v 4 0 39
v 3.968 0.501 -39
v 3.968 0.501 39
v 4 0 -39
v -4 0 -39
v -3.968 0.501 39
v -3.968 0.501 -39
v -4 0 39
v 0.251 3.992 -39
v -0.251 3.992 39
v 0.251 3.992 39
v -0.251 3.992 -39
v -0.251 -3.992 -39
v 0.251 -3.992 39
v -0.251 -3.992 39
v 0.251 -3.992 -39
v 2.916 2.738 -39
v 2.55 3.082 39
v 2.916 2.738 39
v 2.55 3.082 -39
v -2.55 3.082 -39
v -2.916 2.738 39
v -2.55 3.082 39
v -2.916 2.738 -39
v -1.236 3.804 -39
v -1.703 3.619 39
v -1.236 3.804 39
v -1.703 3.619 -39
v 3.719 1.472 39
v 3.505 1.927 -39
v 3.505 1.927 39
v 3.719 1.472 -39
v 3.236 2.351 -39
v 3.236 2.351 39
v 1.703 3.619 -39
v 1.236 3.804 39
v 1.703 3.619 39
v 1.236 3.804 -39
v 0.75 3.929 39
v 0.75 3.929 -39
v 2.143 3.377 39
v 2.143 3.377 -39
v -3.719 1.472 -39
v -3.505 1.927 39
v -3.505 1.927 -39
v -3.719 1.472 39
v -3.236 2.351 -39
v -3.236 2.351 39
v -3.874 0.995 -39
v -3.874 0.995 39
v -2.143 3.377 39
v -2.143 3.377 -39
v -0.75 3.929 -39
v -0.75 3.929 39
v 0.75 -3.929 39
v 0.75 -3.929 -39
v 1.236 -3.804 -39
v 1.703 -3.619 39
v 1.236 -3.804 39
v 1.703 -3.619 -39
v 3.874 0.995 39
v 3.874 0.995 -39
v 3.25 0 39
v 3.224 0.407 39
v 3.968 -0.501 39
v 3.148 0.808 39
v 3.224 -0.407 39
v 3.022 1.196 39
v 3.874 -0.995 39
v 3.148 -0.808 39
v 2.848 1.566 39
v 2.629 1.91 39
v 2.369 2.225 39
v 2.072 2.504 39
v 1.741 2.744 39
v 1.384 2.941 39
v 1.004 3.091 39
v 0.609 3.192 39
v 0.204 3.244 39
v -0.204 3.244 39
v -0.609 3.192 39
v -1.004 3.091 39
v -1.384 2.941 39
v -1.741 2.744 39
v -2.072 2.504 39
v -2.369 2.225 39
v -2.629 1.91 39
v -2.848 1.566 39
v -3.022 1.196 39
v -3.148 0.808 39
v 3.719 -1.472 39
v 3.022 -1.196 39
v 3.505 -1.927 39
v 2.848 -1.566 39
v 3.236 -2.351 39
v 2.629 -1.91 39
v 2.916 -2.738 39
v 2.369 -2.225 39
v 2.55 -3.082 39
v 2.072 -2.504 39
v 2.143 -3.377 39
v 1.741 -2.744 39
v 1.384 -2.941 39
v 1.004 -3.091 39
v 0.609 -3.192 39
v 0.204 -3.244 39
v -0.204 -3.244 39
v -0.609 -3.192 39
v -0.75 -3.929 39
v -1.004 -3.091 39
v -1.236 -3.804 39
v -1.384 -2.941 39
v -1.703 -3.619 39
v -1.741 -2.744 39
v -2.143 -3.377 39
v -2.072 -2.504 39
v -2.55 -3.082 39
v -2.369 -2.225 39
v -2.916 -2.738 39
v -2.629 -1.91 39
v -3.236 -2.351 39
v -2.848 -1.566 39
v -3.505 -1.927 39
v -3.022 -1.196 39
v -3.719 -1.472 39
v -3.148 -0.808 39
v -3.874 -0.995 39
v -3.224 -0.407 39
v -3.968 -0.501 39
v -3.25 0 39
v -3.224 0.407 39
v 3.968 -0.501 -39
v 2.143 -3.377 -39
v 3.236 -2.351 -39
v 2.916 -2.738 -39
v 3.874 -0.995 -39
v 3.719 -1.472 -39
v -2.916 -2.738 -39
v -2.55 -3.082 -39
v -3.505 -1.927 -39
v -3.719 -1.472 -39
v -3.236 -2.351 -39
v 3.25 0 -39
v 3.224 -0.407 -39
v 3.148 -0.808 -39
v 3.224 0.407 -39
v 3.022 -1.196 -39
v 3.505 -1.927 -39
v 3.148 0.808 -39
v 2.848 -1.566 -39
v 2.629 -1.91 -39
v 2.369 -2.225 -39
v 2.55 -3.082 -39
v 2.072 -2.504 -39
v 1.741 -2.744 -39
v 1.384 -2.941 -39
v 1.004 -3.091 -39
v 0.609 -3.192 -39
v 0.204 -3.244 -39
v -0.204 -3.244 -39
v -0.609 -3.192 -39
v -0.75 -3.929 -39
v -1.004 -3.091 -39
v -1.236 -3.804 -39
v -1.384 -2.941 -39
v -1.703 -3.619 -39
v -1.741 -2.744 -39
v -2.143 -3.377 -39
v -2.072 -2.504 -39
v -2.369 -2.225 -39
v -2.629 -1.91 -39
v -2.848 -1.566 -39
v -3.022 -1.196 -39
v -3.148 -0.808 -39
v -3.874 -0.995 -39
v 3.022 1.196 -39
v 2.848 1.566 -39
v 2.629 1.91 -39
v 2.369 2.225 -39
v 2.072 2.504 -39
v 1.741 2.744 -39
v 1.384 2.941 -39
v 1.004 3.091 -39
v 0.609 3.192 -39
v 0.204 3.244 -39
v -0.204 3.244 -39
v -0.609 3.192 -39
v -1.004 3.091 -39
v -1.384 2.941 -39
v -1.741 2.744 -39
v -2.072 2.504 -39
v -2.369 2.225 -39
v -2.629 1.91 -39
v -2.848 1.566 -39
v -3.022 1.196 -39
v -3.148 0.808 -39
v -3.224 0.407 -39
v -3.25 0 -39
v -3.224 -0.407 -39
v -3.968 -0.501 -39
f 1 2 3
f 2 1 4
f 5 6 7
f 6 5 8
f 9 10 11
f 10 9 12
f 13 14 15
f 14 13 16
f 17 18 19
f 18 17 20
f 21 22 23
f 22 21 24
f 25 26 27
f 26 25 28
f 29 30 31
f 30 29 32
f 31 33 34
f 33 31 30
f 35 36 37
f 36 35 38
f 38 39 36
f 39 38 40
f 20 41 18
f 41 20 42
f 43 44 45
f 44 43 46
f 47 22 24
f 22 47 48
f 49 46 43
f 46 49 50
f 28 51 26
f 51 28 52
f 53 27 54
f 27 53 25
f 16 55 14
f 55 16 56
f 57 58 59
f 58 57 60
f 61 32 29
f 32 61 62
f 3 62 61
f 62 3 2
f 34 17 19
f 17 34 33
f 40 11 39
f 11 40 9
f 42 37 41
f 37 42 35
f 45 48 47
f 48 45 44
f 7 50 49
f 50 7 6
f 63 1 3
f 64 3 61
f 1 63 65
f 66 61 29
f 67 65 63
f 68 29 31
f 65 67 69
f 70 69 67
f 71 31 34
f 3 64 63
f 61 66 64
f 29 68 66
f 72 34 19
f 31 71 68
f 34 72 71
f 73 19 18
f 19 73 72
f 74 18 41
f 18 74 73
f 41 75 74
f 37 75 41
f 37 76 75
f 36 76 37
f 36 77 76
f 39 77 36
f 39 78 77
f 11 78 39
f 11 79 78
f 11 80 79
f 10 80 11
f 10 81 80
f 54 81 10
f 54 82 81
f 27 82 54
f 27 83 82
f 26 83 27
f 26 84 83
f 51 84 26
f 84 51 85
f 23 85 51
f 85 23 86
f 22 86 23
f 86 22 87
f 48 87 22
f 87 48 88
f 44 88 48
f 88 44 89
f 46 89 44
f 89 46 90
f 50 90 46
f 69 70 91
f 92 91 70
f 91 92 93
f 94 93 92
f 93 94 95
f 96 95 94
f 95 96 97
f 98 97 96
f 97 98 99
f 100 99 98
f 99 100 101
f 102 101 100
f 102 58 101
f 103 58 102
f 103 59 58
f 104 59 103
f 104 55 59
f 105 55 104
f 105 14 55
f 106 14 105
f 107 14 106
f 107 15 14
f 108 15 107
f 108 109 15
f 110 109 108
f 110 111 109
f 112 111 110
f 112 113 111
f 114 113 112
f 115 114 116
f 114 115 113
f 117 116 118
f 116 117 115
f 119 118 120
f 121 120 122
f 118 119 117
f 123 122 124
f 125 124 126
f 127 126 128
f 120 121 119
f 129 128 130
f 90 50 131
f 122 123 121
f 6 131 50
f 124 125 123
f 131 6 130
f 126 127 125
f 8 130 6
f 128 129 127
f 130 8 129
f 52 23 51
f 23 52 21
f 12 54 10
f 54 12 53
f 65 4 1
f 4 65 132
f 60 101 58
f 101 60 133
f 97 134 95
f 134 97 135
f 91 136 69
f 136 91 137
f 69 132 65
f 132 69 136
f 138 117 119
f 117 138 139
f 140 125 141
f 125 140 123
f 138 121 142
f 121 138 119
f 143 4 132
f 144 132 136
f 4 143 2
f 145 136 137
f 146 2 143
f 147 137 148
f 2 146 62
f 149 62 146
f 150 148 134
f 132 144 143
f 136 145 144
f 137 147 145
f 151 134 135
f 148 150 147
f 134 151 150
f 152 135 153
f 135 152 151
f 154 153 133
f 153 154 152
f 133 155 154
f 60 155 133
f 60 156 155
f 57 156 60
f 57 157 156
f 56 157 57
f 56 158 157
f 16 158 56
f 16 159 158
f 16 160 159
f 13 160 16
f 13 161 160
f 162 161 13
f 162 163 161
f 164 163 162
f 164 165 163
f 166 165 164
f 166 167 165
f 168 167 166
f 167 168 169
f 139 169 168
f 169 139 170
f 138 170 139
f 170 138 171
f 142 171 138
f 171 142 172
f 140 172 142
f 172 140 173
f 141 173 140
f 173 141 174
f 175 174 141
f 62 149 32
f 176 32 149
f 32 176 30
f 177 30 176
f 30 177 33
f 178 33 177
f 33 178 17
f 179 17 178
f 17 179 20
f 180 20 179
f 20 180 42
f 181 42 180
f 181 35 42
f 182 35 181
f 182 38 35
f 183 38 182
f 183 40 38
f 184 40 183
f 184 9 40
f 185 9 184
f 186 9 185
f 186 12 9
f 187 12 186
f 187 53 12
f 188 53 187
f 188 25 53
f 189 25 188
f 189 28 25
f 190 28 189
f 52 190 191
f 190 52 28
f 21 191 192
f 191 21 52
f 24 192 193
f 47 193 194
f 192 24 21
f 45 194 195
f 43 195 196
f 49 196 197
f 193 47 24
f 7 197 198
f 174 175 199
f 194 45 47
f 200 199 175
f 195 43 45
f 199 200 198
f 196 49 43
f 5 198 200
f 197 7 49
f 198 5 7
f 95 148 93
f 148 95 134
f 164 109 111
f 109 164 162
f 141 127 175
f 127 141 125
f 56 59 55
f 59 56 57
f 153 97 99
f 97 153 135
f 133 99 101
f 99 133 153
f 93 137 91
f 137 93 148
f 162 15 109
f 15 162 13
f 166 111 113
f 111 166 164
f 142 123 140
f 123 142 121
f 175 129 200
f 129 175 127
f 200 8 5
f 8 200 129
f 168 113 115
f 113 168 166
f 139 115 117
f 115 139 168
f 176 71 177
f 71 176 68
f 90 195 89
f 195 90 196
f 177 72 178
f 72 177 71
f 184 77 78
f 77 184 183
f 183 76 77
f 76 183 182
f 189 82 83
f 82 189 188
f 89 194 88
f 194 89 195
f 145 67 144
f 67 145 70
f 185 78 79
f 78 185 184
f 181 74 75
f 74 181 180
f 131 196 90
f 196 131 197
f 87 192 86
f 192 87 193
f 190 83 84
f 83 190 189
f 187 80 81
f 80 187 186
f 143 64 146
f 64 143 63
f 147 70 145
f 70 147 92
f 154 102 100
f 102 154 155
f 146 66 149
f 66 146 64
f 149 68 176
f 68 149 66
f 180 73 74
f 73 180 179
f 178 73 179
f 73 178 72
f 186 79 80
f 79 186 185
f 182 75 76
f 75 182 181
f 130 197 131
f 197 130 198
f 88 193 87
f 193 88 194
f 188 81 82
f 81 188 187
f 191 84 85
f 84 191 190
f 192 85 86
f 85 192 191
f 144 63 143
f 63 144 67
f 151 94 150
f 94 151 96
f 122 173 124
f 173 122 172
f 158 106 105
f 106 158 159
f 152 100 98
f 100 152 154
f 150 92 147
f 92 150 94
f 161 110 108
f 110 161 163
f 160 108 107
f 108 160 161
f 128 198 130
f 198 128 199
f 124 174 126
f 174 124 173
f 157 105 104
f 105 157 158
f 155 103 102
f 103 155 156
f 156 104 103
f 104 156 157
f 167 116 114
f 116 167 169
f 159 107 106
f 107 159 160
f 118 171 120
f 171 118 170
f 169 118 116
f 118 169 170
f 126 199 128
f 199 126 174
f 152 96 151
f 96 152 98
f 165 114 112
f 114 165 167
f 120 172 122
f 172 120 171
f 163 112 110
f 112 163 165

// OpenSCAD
$fn = 50;


difference() {
	union() {
		translate(v = [0, 0, -39.0000000000]) {
			cylinder(h = 78, r = 4.0000000000);
		}
	}
	union() {
		translate(v = [0, 0, -100.0000000000]) {
			cylinder(h = 200, r = 3.2500000000);
		}
	}
}
